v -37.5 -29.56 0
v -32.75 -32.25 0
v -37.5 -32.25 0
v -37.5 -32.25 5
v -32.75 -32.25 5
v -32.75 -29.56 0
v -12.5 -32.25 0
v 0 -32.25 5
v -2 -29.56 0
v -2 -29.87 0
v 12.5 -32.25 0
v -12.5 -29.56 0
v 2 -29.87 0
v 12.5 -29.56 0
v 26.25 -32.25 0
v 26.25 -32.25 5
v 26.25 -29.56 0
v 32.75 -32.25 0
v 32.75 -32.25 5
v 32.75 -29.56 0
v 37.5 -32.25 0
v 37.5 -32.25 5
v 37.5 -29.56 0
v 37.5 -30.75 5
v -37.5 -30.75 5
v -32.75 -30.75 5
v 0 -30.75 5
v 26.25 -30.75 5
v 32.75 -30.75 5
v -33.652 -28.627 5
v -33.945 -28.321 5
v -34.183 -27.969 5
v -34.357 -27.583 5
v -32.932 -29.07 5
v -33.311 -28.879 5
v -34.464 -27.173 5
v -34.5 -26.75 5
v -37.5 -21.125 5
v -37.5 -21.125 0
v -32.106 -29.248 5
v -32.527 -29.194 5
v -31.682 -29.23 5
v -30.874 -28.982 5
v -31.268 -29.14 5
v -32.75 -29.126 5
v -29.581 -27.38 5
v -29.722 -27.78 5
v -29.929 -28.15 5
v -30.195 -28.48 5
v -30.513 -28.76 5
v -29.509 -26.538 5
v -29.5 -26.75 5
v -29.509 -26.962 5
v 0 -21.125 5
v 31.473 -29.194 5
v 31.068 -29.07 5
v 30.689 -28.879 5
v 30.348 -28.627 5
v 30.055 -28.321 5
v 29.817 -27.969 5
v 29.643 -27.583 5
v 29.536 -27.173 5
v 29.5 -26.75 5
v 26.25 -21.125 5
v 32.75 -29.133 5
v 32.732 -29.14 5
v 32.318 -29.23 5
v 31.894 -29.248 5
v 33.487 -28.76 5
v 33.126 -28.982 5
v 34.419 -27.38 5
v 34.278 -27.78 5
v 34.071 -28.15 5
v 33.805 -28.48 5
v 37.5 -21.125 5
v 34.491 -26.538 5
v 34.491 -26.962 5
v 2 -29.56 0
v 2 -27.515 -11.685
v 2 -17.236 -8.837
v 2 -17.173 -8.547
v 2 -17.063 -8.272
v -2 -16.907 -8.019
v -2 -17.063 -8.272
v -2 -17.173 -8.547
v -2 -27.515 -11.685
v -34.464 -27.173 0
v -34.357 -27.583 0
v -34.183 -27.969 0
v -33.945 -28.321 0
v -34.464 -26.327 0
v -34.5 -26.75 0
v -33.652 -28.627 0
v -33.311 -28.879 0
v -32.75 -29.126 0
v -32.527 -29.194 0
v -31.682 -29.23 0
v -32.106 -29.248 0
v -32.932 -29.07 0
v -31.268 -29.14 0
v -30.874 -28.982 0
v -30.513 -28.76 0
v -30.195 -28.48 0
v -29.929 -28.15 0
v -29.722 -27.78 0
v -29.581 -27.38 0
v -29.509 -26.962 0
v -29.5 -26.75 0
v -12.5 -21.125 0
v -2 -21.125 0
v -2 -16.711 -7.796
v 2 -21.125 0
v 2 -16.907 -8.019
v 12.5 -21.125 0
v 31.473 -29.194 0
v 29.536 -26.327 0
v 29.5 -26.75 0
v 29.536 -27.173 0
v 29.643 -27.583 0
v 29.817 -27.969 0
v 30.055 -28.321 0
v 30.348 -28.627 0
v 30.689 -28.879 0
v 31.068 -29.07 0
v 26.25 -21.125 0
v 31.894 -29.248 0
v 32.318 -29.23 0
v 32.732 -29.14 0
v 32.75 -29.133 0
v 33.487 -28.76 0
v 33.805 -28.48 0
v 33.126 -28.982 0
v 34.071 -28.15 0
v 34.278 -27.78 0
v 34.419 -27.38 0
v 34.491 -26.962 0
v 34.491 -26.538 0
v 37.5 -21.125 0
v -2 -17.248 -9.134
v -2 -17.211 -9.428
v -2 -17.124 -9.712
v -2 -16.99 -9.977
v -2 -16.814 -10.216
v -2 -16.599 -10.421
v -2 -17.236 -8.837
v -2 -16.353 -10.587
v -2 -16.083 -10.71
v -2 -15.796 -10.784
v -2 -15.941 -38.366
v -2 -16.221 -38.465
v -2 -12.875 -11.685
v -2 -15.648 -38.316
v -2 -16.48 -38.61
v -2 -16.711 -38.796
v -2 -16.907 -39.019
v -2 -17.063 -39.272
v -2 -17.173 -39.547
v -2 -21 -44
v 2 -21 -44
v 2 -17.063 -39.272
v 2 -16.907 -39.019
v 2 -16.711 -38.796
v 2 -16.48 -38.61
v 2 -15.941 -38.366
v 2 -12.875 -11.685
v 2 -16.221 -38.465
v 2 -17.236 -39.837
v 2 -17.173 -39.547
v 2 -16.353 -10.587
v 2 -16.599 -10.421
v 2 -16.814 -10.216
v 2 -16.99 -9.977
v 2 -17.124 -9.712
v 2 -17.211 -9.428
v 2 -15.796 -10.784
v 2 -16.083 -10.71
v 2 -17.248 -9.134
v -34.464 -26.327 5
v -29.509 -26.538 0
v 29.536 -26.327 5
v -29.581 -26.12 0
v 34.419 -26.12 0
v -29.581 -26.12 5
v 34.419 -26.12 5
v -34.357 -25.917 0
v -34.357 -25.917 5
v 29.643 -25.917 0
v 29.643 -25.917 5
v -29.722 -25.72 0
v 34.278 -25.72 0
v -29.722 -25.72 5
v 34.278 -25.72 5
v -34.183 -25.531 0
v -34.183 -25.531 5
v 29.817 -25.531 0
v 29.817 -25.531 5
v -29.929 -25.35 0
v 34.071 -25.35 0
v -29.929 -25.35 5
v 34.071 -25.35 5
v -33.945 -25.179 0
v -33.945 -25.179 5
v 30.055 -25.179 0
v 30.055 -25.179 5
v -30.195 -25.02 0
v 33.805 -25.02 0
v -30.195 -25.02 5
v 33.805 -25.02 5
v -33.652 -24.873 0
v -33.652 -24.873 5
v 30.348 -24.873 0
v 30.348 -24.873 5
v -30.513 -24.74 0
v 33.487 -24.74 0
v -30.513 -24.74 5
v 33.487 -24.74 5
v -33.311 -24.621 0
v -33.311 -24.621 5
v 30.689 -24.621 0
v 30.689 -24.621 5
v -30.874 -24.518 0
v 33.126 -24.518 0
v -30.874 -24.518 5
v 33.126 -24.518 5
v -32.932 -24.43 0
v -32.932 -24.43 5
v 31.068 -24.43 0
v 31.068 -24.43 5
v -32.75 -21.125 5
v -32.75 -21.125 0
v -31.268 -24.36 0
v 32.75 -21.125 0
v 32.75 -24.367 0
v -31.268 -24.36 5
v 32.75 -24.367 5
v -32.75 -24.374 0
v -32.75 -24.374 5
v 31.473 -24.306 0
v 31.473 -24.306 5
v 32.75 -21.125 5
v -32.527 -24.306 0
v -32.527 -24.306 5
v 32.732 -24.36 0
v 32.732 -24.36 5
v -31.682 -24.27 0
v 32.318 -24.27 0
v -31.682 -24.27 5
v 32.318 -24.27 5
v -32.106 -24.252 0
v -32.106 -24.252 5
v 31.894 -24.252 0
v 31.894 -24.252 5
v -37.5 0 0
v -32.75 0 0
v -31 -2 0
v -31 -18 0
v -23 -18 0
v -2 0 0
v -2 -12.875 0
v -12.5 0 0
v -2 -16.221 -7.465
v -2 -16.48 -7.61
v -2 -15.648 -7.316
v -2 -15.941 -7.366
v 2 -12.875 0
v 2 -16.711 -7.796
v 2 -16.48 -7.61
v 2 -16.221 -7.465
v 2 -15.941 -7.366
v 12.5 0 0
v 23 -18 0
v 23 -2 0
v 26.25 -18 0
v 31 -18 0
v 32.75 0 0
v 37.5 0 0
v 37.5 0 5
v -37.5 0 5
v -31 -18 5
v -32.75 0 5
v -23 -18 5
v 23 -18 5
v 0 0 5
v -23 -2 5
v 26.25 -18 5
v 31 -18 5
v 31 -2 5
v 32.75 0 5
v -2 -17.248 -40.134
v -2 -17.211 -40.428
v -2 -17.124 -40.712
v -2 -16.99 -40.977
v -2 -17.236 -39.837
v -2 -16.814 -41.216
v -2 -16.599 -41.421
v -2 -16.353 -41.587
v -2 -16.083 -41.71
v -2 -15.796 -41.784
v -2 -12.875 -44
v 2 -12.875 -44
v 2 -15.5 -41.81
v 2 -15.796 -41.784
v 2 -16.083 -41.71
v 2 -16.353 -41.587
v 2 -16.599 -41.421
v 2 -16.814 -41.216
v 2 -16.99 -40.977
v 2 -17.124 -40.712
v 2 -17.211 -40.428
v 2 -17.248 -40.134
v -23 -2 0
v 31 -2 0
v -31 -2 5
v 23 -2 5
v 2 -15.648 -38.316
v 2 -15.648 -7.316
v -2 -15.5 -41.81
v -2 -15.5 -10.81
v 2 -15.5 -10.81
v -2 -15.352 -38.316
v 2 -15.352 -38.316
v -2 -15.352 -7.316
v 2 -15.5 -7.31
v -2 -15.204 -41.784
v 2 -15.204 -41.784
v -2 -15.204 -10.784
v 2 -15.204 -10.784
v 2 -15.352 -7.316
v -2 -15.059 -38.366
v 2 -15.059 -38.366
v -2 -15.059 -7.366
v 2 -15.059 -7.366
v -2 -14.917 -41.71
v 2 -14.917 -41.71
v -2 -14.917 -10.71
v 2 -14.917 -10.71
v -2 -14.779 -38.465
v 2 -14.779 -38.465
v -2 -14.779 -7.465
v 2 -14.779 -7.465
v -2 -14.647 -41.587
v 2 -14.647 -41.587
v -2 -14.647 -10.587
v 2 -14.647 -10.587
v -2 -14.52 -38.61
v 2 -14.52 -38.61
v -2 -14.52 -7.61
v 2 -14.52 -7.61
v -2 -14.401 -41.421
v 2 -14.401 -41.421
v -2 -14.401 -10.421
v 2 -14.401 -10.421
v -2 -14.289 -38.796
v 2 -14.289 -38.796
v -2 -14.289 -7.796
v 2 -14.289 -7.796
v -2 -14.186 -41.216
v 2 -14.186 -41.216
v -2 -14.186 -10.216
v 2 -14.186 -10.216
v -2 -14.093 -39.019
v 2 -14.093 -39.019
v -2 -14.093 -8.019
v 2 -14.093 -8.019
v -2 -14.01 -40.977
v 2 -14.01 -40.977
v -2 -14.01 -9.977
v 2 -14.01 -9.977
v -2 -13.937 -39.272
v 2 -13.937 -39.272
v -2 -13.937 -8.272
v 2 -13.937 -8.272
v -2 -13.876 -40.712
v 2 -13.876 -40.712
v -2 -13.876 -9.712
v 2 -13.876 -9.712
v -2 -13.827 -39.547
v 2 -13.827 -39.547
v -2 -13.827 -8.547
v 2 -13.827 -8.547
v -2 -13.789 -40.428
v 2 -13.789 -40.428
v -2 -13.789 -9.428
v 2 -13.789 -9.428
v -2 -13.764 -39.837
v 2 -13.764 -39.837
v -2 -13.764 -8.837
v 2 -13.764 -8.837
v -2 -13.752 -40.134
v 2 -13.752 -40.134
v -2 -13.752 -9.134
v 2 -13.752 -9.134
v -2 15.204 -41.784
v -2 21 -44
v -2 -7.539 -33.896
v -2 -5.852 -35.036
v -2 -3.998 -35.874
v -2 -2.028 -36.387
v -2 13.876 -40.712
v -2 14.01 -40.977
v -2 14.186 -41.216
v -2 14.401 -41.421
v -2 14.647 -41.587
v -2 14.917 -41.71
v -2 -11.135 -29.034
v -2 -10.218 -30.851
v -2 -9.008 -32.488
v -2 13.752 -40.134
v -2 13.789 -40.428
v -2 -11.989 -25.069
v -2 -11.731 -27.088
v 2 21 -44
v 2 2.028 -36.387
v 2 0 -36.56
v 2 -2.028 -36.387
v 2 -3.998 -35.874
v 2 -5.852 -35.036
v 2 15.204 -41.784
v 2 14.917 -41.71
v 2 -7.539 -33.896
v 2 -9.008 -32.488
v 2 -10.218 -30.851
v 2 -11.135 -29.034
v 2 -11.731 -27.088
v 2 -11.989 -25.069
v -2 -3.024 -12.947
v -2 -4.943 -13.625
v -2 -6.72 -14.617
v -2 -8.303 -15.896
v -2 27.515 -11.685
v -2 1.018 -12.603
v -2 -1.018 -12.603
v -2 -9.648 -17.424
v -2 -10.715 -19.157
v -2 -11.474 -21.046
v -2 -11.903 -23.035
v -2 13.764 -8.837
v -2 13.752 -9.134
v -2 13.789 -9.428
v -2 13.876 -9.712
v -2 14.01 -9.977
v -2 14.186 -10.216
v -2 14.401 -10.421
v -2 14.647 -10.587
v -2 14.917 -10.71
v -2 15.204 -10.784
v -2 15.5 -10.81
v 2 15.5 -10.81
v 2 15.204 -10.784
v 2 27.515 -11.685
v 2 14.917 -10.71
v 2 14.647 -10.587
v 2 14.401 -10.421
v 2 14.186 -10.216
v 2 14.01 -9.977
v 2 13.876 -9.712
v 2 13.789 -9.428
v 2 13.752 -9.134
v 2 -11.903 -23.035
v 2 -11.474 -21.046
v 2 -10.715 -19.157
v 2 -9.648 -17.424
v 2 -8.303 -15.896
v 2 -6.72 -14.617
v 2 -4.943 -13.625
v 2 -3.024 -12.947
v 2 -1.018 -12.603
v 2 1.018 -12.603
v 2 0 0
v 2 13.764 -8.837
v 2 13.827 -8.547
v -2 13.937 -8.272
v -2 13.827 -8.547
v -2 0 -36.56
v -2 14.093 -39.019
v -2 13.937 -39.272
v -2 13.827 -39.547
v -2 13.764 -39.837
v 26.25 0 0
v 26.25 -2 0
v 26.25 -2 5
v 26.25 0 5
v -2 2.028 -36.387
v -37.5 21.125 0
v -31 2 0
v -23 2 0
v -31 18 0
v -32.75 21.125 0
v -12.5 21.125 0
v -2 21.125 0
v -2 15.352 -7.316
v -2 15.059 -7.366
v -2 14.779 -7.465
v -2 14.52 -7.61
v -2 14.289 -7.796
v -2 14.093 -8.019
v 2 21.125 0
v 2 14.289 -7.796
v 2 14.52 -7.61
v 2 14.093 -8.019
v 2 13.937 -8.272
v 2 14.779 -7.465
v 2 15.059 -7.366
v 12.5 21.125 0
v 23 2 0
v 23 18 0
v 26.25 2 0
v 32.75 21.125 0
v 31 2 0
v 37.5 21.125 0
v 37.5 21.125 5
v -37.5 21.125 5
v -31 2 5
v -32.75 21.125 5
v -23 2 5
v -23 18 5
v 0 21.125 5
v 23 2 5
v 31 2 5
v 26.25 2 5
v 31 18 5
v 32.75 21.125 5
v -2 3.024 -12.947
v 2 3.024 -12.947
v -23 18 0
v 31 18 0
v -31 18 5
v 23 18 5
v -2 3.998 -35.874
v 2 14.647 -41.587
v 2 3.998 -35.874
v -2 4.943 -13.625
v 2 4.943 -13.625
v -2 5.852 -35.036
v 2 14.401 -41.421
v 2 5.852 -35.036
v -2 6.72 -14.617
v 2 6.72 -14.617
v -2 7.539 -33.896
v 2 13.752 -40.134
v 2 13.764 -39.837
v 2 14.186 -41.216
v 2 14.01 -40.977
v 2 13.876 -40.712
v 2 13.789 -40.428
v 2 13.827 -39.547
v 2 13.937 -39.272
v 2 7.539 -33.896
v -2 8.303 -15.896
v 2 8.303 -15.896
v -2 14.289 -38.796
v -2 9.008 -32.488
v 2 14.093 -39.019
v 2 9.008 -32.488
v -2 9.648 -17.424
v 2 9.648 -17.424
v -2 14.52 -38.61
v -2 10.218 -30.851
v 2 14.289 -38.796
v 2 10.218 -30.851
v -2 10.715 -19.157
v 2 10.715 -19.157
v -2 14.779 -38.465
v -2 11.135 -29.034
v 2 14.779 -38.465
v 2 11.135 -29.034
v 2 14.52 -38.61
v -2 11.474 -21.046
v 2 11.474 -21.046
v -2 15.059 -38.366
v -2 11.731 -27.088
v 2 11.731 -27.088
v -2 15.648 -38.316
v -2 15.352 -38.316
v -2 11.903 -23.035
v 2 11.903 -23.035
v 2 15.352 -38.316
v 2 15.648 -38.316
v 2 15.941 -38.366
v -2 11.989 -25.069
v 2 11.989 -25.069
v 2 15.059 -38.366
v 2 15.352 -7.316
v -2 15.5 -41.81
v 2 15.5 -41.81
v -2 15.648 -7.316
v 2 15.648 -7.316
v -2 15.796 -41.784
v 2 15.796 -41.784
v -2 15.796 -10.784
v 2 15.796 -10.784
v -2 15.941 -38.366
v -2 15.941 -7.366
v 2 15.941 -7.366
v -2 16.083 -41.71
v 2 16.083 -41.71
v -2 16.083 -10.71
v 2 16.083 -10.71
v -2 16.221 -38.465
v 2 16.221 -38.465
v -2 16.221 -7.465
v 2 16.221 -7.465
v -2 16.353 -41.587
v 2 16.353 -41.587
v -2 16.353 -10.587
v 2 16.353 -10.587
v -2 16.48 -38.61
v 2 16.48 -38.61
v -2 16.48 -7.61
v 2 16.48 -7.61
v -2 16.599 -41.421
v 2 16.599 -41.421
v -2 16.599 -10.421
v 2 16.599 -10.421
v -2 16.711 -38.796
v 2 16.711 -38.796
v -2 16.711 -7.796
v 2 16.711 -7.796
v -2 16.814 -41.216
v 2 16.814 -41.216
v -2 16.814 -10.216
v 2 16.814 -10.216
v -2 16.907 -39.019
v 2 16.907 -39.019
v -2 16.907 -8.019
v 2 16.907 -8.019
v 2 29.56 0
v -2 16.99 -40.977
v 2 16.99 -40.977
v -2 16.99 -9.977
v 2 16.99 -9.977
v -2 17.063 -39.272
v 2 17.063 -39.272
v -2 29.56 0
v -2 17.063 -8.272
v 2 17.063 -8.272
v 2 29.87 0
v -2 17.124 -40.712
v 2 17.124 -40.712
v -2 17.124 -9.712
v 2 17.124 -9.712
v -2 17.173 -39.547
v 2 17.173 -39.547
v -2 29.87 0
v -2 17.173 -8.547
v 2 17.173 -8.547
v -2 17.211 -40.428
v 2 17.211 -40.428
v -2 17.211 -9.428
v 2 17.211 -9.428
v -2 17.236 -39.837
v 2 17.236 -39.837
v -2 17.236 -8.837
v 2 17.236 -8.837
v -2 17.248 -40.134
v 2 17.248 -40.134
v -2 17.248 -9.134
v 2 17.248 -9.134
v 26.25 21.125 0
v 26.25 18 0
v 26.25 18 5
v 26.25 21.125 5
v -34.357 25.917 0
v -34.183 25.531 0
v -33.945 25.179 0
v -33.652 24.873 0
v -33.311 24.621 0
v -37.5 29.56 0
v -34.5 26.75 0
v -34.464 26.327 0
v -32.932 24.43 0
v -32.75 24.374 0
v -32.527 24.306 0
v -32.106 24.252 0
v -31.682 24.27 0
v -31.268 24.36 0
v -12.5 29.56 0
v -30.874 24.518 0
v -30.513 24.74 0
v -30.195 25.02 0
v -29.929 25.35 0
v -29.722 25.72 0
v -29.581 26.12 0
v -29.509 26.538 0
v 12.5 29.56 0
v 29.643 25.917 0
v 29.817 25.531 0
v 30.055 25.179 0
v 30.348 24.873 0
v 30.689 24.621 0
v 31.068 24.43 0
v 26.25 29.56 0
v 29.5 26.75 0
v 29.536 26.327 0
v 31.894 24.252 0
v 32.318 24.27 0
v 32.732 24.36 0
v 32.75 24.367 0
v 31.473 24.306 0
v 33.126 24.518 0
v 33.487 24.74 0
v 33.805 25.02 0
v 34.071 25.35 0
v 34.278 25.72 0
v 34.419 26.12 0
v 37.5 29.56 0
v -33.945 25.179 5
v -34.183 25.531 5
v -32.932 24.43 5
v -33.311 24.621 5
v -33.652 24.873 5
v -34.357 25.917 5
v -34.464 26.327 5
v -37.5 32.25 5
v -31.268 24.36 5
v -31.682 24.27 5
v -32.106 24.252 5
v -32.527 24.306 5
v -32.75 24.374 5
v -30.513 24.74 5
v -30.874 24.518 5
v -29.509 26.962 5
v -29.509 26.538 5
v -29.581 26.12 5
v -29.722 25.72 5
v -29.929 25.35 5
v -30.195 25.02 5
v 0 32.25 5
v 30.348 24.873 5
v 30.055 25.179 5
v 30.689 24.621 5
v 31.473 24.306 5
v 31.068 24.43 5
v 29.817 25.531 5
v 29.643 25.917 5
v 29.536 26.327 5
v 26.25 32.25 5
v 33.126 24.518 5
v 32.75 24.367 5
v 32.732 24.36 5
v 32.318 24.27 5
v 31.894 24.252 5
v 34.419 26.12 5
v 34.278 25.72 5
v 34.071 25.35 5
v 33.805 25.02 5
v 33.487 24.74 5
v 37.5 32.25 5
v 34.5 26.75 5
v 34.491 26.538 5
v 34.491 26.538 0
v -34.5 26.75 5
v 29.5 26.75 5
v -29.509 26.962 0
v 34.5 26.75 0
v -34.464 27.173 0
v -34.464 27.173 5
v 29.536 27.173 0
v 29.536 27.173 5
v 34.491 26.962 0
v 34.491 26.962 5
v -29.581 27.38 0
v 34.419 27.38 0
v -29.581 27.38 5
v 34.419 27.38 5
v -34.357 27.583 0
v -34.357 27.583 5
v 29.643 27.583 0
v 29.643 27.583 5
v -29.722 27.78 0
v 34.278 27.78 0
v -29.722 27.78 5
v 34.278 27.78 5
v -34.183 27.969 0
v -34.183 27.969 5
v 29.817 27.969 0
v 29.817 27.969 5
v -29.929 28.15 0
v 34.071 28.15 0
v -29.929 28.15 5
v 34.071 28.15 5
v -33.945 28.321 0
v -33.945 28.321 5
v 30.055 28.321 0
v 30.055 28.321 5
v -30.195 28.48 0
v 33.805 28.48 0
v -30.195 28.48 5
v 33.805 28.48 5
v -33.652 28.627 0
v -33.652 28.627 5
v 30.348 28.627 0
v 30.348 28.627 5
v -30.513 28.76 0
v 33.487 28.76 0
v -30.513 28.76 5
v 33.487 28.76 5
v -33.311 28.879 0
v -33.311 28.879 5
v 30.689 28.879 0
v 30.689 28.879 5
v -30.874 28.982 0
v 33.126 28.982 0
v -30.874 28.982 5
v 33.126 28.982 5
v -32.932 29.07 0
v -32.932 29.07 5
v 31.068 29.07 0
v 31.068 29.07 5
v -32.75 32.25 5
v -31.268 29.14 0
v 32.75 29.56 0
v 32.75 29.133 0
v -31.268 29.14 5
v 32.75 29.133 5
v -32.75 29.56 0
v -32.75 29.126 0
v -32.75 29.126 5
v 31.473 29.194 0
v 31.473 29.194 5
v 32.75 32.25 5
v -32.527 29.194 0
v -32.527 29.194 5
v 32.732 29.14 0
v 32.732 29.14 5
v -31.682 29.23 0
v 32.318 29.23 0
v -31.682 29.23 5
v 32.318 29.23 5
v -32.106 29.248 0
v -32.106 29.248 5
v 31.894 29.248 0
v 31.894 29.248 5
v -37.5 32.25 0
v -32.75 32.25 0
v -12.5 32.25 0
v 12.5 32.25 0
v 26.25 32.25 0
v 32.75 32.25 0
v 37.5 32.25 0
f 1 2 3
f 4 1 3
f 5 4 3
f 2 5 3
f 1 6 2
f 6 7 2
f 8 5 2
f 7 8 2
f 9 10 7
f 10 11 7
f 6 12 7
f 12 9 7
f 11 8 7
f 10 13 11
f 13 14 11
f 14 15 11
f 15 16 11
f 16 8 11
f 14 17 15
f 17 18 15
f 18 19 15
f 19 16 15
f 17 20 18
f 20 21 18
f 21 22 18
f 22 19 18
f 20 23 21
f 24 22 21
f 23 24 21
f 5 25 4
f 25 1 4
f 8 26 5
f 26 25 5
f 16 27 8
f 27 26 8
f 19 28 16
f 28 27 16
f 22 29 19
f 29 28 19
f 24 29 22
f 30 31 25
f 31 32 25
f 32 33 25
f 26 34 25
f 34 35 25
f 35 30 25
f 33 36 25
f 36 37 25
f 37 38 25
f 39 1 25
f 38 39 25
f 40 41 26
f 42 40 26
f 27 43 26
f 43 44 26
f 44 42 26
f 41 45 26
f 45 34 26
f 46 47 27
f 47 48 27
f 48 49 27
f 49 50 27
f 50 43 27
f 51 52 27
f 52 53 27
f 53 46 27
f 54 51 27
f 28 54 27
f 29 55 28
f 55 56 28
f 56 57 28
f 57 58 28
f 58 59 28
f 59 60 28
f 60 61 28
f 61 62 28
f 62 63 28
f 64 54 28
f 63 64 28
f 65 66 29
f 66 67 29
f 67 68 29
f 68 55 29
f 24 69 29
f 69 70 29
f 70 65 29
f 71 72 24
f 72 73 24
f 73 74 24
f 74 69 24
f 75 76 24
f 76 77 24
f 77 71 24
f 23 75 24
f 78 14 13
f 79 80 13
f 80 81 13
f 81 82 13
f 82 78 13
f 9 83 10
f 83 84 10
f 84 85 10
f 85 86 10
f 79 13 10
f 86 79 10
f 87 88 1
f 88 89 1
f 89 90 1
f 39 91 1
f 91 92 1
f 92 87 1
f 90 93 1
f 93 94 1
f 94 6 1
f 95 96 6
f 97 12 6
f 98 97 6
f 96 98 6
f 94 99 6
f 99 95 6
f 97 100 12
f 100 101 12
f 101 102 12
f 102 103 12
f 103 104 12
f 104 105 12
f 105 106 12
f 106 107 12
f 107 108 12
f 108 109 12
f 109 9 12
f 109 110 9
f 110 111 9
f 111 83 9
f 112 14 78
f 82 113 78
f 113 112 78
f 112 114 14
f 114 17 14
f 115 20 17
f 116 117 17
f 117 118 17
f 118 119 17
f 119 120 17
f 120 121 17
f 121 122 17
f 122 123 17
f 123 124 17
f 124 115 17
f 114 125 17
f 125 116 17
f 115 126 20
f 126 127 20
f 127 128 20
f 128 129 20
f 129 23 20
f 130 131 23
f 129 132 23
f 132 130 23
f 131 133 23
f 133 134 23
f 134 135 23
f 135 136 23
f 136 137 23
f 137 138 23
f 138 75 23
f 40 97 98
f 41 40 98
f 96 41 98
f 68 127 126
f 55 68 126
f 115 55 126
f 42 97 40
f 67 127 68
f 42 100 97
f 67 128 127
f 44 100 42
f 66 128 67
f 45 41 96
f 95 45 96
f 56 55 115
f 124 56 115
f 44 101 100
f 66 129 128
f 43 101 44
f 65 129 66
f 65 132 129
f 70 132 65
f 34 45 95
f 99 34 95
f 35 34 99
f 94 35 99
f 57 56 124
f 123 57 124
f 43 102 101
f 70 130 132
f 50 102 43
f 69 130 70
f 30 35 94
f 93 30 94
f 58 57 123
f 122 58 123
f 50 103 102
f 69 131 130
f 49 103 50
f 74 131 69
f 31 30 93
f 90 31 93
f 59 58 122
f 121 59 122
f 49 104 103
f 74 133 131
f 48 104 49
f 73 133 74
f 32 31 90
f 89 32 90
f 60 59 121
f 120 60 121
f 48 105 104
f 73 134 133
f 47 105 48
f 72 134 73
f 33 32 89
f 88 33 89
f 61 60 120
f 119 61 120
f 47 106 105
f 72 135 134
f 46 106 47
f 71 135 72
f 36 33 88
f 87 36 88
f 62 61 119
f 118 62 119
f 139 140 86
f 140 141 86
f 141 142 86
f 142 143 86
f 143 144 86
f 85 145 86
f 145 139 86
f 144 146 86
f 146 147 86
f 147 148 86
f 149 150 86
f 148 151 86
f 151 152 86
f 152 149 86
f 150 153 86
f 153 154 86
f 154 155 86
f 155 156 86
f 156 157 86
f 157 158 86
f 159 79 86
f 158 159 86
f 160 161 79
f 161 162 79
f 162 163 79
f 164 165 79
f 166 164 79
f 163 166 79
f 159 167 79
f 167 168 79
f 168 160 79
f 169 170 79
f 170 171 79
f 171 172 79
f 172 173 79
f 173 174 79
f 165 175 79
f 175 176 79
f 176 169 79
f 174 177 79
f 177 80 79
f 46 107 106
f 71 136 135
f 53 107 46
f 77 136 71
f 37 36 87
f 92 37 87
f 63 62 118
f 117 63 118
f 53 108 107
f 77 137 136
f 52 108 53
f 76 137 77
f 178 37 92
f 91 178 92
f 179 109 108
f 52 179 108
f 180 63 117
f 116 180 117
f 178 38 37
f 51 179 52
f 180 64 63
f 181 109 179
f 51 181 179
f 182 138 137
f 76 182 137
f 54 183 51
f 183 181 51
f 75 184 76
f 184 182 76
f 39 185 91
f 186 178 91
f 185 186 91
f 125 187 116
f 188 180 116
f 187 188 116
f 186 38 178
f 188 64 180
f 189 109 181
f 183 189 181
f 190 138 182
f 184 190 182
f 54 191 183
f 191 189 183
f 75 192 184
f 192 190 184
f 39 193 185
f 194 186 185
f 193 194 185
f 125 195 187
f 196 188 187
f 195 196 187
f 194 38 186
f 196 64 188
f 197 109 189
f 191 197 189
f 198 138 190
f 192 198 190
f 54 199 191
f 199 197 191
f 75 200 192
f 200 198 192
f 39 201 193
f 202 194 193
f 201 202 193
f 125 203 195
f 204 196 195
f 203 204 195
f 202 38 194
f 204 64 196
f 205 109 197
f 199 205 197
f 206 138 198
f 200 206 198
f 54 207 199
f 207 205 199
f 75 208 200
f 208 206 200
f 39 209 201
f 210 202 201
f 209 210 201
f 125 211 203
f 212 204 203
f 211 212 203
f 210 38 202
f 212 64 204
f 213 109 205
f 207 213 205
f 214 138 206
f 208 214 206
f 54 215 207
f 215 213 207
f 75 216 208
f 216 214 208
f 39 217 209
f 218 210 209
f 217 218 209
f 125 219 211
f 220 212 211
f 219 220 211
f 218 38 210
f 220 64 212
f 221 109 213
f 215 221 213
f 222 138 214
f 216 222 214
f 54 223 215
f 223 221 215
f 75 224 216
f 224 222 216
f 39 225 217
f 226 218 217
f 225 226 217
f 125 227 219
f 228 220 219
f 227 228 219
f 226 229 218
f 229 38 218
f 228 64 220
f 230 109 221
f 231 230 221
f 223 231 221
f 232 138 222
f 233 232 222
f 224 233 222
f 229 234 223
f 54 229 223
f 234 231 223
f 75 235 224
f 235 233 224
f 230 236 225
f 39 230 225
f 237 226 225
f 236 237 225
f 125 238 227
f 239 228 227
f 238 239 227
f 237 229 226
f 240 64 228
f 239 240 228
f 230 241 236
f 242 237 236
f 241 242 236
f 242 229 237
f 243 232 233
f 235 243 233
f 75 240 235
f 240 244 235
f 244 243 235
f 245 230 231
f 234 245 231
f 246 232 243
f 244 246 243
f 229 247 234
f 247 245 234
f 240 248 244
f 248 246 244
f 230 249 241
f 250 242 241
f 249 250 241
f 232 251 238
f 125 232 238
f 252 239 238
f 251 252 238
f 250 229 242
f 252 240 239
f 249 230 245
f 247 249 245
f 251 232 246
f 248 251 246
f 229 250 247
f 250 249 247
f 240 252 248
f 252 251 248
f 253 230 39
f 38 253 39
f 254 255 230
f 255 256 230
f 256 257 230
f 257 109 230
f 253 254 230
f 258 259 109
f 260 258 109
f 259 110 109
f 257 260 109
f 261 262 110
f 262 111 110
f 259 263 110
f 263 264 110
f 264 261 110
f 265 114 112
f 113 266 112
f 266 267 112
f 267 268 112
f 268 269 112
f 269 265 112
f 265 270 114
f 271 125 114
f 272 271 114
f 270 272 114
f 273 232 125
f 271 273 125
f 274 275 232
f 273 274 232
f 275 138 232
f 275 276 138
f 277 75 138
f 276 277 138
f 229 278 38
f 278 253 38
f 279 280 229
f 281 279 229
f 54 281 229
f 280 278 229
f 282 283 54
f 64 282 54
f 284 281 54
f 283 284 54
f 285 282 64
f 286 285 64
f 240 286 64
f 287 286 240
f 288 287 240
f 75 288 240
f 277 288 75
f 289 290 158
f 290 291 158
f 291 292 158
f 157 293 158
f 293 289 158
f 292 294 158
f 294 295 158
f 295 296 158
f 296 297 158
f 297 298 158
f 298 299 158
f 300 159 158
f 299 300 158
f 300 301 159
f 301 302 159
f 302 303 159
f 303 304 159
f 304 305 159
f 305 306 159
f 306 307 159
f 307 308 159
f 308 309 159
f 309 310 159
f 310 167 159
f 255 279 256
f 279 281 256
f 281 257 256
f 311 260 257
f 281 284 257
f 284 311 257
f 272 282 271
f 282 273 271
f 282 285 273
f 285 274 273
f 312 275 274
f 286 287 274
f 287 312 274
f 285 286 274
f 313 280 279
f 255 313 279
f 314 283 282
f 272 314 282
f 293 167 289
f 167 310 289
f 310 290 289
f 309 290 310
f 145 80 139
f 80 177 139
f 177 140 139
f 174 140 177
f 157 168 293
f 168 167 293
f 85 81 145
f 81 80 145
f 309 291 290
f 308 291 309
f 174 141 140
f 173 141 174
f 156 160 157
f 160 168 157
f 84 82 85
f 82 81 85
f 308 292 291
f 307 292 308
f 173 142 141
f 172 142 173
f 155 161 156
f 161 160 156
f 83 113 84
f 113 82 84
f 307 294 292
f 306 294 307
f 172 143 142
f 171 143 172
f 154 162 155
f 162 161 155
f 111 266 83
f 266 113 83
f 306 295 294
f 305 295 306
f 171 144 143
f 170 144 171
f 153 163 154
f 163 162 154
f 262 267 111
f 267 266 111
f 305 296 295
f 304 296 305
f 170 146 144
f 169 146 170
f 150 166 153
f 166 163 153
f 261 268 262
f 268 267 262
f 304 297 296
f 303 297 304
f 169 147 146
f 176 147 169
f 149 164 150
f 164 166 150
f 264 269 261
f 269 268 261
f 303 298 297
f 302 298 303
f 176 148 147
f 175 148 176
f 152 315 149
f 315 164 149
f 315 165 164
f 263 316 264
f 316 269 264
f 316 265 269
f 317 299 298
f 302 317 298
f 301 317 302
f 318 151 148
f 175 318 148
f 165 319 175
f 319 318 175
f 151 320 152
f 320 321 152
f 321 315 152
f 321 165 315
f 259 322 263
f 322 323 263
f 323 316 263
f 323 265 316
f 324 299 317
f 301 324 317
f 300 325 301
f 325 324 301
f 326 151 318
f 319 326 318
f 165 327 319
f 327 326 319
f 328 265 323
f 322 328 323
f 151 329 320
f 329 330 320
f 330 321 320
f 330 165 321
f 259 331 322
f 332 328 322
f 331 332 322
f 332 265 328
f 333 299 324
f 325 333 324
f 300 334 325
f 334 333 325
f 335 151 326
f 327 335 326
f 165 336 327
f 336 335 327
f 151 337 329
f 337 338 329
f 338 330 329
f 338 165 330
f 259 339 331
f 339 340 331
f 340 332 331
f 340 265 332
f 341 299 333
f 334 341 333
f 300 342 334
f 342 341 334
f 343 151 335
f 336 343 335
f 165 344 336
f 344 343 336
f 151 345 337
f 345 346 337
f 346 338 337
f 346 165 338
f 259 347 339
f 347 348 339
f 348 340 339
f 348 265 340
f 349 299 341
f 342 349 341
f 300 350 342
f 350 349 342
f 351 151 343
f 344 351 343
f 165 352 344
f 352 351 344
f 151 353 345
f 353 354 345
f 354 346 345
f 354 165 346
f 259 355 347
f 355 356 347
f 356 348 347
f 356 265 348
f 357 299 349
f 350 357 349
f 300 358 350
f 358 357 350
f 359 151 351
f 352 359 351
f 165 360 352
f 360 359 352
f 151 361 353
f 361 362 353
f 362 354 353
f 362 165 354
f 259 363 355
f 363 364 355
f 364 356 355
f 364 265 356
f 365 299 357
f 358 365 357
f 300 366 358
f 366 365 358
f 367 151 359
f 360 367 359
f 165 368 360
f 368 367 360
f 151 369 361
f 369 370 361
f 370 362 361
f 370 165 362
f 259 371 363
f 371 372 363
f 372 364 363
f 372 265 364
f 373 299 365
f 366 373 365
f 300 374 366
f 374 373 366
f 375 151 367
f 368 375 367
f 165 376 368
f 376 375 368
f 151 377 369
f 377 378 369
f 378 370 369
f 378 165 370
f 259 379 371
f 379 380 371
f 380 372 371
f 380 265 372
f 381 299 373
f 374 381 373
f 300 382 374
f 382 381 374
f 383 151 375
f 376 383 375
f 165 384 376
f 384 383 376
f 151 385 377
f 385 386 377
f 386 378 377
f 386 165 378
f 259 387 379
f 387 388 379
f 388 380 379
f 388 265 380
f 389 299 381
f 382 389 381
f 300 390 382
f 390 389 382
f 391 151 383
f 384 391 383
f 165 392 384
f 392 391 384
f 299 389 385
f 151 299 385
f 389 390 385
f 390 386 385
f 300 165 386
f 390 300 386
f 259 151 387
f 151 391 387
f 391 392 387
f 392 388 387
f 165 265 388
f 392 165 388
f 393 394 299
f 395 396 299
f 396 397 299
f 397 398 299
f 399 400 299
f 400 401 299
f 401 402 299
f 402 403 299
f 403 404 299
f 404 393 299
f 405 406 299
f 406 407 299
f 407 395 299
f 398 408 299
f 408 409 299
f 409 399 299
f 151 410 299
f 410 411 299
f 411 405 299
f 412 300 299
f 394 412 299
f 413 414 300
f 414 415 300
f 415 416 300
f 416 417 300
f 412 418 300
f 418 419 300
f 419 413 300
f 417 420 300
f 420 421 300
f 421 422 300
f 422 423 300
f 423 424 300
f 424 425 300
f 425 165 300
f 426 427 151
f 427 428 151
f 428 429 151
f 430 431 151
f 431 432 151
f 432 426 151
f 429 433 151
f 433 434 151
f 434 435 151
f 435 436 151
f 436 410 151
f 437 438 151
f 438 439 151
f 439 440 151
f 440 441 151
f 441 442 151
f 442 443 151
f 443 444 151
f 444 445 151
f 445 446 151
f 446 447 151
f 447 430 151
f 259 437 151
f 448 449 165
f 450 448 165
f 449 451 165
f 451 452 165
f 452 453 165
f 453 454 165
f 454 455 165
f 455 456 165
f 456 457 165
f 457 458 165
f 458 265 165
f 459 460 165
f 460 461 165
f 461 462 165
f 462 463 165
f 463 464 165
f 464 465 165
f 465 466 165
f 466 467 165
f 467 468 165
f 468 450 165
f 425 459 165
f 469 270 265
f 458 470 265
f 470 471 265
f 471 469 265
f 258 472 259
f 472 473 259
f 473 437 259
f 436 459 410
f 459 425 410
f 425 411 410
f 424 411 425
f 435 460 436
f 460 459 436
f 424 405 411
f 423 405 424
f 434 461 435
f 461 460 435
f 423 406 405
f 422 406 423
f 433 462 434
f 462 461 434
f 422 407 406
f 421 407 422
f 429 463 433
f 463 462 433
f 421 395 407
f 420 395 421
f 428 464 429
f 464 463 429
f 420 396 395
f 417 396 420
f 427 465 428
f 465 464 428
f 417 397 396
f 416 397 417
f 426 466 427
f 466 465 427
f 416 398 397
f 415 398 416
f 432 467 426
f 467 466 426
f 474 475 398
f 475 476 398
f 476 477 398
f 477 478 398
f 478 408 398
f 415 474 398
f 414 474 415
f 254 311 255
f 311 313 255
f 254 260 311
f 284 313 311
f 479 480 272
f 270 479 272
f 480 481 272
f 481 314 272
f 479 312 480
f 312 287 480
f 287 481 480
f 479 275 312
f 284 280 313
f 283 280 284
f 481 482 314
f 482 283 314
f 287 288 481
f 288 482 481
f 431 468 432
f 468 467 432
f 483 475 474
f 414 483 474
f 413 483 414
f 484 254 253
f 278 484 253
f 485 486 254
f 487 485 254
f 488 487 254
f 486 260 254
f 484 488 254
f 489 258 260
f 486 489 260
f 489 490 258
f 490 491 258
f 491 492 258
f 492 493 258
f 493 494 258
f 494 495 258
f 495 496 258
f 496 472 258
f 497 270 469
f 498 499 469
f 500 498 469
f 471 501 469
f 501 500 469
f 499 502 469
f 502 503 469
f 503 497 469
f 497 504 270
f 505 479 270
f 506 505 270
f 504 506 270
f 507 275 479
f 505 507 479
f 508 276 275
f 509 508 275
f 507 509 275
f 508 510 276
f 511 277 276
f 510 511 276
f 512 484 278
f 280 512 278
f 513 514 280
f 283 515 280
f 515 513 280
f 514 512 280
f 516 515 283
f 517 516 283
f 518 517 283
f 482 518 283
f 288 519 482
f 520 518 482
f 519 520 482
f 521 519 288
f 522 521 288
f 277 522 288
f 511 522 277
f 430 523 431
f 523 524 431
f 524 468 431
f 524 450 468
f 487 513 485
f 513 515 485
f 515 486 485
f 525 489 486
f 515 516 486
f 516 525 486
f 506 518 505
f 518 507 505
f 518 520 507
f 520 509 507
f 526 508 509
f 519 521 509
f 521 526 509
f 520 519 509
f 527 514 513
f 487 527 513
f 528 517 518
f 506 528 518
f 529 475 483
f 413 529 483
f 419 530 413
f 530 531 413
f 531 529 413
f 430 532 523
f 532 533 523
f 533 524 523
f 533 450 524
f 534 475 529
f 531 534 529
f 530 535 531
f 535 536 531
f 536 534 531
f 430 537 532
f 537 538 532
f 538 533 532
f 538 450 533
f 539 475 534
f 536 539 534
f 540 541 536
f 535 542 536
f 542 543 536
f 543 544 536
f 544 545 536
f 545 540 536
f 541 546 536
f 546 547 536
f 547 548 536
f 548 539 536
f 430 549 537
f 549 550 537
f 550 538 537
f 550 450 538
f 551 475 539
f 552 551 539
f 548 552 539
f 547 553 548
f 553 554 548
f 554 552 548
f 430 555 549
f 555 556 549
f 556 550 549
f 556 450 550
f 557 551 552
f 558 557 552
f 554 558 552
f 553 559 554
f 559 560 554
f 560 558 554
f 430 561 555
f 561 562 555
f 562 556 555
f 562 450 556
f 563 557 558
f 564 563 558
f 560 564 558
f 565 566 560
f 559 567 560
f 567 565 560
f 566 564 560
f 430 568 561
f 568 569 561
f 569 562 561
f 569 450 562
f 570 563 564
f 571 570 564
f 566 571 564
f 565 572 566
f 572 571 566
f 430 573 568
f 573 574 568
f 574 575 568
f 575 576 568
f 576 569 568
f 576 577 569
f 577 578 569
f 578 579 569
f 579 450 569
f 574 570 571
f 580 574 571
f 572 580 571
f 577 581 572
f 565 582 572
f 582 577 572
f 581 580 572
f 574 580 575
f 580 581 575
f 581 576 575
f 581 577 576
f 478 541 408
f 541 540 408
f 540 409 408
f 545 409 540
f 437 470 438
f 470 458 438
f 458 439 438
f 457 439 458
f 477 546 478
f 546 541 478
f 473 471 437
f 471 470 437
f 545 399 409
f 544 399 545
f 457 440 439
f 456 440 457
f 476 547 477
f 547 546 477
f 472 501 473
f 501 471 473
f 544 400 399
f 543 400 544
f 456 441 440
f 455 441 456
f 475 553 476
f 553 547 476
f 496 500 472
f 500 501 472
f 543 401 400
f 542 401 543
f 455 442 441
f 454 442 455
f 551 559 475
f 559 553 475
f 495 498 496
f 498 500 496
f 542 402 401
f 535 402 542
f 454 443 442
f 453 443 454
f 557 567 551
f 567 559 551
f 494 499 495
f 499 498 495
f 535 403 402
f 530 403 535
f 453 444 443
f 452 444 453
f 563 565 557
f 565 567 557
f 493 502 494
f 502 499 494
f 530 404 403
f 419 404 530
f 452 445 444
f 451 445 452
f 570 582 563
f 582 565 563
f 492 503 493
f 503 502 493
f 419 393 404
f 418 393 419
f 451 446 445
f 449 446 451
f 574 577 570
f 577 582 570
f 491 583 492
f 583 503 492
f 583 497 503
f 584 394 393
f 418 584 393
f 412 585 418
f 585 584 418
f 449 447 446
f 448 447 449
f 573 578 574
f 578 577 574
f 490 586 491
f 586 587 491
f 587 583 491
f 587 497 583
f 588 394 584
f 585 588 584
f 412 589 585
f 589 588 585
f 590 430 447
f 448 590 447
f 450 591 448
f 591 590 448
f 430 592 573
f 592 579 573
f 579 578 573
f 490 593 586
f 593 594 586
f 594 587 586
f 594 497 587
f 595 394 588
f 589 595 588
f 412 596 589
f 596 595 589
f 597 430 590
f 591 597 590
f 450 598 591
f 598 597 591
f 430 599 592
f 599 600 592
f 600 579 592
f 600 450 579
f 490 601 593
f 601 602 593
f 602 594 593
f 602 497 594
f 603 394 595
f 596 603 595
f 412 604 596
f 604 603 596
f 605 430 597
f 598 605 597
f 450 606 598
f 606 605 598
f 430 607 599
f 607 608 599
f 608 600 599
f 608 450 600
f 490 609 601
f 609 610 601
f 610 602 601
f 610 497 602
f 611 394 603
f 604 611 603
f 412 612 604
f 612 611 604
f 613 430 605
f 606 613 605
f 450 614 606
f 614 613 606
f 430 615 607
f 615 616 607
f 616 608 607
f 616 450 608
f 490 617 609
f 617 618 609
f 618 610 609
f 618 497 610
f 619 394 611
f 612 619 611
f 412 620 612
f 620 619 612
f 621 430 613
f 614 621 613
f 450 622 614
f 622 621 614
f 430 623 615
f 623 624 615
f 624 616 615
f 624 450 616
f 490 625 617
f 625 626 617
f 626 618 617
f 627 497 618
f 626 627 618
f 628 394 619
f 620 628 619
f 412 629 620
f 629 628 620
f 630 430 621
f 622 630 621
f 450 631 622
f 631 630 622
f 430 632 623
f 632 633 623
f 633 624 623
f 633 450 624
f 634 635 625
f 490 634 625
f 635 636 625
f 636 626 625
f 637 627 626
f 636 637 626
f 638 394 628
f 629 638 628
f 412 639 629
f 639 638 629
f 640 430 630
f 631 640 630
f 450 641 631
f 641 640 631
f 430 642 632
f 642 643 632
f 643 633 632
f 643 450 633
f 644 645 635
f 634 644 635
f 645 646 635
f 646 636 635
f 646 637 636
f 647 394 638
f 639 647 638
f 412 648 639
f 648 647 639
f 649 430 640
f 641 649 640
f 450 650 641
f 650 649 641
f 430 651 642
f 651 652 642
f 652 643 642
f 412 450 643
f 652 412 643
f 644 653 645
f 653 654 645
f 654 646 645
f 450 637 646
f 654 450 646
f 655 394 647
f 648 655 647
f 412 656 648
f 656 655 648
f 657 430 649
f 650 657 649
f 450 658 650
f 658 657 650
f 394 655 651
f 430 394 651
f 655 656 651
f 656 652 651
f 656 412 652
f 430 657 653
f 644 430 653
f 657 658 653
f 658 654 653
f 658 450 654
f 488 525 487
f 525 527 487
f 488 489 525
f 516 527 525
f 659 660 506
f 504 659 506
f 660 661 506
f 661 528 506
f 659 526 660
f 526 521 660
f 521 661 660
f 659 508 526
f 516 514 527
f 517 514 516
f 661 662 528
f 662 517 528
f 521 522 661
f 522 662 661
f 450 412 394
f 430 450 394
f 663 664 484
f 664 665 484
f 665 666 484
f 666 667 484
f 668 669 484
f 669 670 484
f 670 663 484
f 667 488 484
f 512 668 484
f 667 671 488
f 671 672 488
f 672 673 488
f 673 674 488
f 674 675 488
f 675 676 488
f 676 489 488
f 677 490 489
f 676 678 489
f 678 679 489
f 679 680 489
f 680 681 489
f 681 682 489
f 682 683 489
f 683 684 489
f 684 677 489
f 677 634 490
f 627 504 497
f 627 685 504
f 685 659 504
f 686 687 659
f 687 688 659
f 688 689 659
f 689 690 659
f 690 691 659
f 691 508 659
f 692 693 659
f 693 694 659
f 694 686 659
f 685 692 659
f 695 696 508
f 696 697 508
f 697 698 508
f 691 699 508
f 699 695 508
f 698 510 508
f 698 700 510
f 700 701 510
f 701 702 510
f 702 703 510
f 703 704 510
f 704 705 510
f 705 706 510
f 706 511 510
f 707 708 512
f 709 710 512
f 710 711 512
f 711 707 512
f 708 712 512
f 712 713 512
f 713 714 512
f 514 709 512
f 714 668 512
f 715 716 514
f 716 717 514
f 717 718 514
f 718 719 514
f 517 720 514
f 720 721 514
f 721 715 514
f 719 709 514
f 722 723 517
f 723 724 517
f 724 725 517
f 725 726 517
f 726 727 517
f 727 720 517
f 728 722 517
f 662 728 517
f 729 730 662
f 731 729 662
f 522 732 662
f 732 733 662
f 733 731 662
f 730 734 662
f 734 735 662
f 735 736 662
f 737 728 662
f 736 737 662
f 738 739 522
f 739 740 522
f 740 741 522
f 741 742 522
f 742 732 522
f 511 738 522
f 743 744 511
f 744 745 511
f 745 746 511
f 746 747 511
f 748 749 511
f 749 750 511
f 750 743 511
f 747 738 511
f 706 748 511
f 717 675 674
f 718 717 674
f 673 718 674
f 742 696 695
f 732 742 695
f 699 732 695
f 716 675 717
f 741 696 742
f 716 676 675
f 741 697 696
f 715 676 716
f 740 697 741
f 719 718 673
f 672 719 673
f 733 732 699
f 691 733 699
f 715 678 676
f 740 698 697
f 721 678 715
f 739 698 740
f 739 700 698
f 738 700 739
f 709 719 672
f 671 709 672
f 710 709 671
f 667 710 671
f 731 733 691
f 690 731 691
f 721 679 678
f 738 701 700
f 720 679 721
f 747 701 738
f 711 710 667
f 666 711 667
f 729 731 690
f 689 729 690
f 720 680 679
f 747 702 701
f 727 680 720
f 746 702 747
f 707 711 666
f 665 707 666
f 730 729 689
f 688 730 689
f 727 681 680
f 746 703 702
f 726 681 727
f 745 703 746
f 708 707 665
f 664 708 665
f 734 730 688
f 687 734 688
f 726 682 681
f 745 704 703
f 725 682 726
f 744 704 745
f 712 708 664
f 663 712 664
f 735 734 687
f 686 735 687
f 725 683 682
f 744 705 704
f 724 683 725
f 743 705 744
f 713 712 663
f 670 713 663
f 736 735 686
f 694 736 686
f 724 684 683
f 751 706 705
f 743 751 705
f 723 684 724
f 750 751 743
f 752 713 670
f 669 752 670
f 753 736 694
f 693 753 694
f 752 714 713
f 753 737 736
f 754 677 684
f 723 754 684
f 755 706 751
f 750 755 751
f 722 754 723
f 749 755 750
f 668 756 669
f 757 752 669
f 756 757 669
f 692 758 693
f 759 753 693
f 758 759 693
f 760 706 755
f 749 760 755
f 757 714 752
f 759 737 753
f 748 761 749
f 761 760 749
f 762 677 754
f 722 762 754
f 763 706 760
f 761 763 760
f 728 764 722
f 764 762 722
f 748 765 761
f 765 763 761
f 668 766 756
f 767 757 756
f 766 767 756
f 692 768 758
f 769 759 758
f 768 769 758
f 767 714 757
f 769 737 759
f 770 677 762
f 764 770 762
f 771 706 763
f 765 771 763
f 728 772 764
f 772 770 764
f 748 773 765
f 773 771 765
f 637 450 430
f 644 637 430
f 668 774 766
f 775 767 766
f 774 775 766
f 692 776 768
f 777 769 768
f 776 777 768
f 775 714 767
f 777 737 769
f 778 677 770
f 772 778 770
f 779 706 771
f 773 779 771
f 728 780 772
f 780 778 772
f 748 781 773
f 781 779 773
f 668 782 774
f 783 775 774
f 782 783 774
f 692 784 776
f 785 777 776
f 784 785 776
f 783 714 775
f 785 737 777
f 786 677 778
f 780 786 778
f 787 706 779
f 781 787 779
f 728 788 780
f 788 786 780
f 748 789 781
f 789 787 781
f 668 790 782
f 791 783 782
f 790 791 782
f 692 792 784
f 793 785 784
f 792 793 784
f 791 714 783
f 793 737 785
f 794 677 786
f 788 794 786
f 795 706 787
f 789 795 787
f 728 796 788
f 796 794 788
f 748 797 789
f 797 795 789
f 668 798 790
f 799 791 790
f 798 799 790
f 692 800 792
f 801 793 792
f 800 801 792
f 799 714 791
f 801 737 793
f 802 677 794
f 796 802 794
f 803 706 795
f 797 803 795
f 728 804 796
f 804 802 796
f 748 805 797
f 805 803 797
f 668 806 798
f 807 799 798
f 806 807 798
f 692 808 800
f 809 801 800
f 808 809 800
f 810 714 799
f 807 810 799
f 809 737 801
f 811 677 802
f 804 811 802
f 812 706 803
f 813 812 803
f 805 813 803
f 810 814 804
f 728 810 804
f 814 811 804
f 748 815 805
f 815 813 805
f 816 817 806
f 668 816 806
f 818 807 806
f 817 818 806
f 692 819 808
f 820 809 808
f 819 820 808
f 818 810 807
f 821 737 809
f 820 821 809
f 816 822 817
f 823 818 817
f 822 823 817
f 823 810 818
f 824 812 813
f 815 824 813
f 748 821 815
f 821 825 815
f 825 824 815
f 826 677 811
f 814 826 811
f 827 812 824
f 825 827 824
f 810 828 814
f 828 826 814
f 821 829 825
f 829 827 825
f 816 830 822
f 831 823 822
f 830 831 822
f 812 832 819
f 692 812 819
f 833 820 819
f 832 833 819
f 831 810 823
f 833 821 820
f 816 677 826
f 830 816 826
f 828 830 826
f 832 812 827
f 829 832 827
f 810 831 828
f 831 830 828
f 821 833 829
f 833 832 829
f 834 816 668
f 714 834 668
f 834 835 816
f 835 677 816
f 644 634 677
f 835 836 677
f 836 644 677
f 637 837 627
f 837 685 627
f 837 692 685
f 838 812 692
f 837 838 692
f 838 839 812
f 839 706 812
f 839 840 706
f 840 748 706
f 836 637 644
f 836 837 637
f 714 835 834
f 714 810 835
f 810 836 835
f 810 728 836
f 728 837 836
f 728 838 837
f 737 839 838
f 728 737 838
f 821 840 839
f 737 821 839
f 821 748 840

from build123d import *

# Parameters (mm, degrees)
SKETCH_1_W           = 75
SKETCH_1_H           = 64.5
EXTRUDE_1_DEPTH      = 5
EXTRUDE_2_DEPTH      = 2
EXTRUDE_2_DEPTH_BACK = 2
SKETCH_3_R           = 12
SKETCH_3_R_2         = 1.75
CUT_EXTRUDE_1_DEPTH  = 68.352152898
SKETCH_4_R           = 2.5
CUT_EXTRUDE_2_DEPTH  = 67.199037002
SKETCH_5_W           = 8
SKETCH_5_H           = 16
CUT_EXTRUDE_3_DEPTH  = 67.199037002


with BuildPart() as part:
    # 草圖1 → 填料-伸長1 (new body)
    with BuildSketch(Plane.XY):
        Rectangle(SKETCH_1_W, SKETCH_1_H)
    extrude(amount=EXTRUDE_1_DEPTH)

    # 草圖2 → 填料-伸長2 (add, two sides: drawn at the far end of the back side and taken through both)
    with BuildSketch(Plane(origin=(0, 0, 0), x_dir=(0, 0, -1), z_dir=(1, 0, 0)).offset(-EXTRUDE_2_DEPTH_BACK)):
        Polygon((0, 29.870222578), (0, 0), (0, -29.870222578), (44, -21), (44, 21), align=None)
    extrude(amount=EXTRUDE_2_DEPTH + EXTRUDE_2_DEPTH_BACK)

    # 草圖3 → 除料-伸長1 (cut, through all)
    with BuildSketch(Plane(origin=(2, 0, 0), x_dir=(0, 0, -1), z_dir=(1, 0, 0))):
        with Locations((24.559599052, 0)):
            Circle(SKETCH_3_R)
        with Locations((9.059599052, 15.5)):
            Circle(SKETCH_3_R_2)
        with Locations((40.059599052, 15.5)):
            Circle(SKETCH_3_R_2)
        with Locations((40.059599052, -15.5)):
            Circle(SKETCH_3_R_2)
        with Locations((9.059599052, -15.5)):
            Circle(SKETCH_3_R_2)
    extrude(amount=-CUT_EXTRUDE_1_DEPTH, mode=Mode.SUBTRACT)

    # 草圖4 → 除料-伸長2 (cut, through all)
    with BuildSketch(Plane(origin=(0, 0, 0), x_dir=(-1, 0, 0), z_dir=(0, 0, -1))):
        with Locations((32, 26.75)):
            Circle(SKETCH_4_R)
        with Locations(Location((32, -26.75, 0), (0, 0, 180))):
            Circle(SKETCH_4_R)
        with Locations((-32, -26.75)):
            Circle(SKETCH_4_R)
        with Locations(Location((-32, 26.75, 0), (0, 0, 180))):
            Circle(SKETCH_4_R)
    extrude(amount=-CUT_EXTRUDE_2_DEPTH, mode=Mode.SUBTRACT)

    # 草圖5 → 除料-伸長3 (cut, through all)
    with BuildSketch(Plane(origin=(0, 0, 0), x_dir=(-1, 0, 0), z_dir=(0, 0, -1))):
        with Locations((-27, 10)):
            Rectangle(SKETCH_5_W, SKETCH_5_H)
        with Locations((-27, -10)):
            Rectangle(SKETCH_5_W, SKETCH_5_H)
        with Locations((27, -10)):
            Rectangle(SKETCH_5_W, SKETCH_5_H)
        with Locations((27, 10)):
            Rectangle(SKETCH_5_W, SKETCH_5_H)
    extrude(amount=-CUT_EXTRUDE_3_DEPTH, mode=Mode.SUBTRACT)


solid = part.part
